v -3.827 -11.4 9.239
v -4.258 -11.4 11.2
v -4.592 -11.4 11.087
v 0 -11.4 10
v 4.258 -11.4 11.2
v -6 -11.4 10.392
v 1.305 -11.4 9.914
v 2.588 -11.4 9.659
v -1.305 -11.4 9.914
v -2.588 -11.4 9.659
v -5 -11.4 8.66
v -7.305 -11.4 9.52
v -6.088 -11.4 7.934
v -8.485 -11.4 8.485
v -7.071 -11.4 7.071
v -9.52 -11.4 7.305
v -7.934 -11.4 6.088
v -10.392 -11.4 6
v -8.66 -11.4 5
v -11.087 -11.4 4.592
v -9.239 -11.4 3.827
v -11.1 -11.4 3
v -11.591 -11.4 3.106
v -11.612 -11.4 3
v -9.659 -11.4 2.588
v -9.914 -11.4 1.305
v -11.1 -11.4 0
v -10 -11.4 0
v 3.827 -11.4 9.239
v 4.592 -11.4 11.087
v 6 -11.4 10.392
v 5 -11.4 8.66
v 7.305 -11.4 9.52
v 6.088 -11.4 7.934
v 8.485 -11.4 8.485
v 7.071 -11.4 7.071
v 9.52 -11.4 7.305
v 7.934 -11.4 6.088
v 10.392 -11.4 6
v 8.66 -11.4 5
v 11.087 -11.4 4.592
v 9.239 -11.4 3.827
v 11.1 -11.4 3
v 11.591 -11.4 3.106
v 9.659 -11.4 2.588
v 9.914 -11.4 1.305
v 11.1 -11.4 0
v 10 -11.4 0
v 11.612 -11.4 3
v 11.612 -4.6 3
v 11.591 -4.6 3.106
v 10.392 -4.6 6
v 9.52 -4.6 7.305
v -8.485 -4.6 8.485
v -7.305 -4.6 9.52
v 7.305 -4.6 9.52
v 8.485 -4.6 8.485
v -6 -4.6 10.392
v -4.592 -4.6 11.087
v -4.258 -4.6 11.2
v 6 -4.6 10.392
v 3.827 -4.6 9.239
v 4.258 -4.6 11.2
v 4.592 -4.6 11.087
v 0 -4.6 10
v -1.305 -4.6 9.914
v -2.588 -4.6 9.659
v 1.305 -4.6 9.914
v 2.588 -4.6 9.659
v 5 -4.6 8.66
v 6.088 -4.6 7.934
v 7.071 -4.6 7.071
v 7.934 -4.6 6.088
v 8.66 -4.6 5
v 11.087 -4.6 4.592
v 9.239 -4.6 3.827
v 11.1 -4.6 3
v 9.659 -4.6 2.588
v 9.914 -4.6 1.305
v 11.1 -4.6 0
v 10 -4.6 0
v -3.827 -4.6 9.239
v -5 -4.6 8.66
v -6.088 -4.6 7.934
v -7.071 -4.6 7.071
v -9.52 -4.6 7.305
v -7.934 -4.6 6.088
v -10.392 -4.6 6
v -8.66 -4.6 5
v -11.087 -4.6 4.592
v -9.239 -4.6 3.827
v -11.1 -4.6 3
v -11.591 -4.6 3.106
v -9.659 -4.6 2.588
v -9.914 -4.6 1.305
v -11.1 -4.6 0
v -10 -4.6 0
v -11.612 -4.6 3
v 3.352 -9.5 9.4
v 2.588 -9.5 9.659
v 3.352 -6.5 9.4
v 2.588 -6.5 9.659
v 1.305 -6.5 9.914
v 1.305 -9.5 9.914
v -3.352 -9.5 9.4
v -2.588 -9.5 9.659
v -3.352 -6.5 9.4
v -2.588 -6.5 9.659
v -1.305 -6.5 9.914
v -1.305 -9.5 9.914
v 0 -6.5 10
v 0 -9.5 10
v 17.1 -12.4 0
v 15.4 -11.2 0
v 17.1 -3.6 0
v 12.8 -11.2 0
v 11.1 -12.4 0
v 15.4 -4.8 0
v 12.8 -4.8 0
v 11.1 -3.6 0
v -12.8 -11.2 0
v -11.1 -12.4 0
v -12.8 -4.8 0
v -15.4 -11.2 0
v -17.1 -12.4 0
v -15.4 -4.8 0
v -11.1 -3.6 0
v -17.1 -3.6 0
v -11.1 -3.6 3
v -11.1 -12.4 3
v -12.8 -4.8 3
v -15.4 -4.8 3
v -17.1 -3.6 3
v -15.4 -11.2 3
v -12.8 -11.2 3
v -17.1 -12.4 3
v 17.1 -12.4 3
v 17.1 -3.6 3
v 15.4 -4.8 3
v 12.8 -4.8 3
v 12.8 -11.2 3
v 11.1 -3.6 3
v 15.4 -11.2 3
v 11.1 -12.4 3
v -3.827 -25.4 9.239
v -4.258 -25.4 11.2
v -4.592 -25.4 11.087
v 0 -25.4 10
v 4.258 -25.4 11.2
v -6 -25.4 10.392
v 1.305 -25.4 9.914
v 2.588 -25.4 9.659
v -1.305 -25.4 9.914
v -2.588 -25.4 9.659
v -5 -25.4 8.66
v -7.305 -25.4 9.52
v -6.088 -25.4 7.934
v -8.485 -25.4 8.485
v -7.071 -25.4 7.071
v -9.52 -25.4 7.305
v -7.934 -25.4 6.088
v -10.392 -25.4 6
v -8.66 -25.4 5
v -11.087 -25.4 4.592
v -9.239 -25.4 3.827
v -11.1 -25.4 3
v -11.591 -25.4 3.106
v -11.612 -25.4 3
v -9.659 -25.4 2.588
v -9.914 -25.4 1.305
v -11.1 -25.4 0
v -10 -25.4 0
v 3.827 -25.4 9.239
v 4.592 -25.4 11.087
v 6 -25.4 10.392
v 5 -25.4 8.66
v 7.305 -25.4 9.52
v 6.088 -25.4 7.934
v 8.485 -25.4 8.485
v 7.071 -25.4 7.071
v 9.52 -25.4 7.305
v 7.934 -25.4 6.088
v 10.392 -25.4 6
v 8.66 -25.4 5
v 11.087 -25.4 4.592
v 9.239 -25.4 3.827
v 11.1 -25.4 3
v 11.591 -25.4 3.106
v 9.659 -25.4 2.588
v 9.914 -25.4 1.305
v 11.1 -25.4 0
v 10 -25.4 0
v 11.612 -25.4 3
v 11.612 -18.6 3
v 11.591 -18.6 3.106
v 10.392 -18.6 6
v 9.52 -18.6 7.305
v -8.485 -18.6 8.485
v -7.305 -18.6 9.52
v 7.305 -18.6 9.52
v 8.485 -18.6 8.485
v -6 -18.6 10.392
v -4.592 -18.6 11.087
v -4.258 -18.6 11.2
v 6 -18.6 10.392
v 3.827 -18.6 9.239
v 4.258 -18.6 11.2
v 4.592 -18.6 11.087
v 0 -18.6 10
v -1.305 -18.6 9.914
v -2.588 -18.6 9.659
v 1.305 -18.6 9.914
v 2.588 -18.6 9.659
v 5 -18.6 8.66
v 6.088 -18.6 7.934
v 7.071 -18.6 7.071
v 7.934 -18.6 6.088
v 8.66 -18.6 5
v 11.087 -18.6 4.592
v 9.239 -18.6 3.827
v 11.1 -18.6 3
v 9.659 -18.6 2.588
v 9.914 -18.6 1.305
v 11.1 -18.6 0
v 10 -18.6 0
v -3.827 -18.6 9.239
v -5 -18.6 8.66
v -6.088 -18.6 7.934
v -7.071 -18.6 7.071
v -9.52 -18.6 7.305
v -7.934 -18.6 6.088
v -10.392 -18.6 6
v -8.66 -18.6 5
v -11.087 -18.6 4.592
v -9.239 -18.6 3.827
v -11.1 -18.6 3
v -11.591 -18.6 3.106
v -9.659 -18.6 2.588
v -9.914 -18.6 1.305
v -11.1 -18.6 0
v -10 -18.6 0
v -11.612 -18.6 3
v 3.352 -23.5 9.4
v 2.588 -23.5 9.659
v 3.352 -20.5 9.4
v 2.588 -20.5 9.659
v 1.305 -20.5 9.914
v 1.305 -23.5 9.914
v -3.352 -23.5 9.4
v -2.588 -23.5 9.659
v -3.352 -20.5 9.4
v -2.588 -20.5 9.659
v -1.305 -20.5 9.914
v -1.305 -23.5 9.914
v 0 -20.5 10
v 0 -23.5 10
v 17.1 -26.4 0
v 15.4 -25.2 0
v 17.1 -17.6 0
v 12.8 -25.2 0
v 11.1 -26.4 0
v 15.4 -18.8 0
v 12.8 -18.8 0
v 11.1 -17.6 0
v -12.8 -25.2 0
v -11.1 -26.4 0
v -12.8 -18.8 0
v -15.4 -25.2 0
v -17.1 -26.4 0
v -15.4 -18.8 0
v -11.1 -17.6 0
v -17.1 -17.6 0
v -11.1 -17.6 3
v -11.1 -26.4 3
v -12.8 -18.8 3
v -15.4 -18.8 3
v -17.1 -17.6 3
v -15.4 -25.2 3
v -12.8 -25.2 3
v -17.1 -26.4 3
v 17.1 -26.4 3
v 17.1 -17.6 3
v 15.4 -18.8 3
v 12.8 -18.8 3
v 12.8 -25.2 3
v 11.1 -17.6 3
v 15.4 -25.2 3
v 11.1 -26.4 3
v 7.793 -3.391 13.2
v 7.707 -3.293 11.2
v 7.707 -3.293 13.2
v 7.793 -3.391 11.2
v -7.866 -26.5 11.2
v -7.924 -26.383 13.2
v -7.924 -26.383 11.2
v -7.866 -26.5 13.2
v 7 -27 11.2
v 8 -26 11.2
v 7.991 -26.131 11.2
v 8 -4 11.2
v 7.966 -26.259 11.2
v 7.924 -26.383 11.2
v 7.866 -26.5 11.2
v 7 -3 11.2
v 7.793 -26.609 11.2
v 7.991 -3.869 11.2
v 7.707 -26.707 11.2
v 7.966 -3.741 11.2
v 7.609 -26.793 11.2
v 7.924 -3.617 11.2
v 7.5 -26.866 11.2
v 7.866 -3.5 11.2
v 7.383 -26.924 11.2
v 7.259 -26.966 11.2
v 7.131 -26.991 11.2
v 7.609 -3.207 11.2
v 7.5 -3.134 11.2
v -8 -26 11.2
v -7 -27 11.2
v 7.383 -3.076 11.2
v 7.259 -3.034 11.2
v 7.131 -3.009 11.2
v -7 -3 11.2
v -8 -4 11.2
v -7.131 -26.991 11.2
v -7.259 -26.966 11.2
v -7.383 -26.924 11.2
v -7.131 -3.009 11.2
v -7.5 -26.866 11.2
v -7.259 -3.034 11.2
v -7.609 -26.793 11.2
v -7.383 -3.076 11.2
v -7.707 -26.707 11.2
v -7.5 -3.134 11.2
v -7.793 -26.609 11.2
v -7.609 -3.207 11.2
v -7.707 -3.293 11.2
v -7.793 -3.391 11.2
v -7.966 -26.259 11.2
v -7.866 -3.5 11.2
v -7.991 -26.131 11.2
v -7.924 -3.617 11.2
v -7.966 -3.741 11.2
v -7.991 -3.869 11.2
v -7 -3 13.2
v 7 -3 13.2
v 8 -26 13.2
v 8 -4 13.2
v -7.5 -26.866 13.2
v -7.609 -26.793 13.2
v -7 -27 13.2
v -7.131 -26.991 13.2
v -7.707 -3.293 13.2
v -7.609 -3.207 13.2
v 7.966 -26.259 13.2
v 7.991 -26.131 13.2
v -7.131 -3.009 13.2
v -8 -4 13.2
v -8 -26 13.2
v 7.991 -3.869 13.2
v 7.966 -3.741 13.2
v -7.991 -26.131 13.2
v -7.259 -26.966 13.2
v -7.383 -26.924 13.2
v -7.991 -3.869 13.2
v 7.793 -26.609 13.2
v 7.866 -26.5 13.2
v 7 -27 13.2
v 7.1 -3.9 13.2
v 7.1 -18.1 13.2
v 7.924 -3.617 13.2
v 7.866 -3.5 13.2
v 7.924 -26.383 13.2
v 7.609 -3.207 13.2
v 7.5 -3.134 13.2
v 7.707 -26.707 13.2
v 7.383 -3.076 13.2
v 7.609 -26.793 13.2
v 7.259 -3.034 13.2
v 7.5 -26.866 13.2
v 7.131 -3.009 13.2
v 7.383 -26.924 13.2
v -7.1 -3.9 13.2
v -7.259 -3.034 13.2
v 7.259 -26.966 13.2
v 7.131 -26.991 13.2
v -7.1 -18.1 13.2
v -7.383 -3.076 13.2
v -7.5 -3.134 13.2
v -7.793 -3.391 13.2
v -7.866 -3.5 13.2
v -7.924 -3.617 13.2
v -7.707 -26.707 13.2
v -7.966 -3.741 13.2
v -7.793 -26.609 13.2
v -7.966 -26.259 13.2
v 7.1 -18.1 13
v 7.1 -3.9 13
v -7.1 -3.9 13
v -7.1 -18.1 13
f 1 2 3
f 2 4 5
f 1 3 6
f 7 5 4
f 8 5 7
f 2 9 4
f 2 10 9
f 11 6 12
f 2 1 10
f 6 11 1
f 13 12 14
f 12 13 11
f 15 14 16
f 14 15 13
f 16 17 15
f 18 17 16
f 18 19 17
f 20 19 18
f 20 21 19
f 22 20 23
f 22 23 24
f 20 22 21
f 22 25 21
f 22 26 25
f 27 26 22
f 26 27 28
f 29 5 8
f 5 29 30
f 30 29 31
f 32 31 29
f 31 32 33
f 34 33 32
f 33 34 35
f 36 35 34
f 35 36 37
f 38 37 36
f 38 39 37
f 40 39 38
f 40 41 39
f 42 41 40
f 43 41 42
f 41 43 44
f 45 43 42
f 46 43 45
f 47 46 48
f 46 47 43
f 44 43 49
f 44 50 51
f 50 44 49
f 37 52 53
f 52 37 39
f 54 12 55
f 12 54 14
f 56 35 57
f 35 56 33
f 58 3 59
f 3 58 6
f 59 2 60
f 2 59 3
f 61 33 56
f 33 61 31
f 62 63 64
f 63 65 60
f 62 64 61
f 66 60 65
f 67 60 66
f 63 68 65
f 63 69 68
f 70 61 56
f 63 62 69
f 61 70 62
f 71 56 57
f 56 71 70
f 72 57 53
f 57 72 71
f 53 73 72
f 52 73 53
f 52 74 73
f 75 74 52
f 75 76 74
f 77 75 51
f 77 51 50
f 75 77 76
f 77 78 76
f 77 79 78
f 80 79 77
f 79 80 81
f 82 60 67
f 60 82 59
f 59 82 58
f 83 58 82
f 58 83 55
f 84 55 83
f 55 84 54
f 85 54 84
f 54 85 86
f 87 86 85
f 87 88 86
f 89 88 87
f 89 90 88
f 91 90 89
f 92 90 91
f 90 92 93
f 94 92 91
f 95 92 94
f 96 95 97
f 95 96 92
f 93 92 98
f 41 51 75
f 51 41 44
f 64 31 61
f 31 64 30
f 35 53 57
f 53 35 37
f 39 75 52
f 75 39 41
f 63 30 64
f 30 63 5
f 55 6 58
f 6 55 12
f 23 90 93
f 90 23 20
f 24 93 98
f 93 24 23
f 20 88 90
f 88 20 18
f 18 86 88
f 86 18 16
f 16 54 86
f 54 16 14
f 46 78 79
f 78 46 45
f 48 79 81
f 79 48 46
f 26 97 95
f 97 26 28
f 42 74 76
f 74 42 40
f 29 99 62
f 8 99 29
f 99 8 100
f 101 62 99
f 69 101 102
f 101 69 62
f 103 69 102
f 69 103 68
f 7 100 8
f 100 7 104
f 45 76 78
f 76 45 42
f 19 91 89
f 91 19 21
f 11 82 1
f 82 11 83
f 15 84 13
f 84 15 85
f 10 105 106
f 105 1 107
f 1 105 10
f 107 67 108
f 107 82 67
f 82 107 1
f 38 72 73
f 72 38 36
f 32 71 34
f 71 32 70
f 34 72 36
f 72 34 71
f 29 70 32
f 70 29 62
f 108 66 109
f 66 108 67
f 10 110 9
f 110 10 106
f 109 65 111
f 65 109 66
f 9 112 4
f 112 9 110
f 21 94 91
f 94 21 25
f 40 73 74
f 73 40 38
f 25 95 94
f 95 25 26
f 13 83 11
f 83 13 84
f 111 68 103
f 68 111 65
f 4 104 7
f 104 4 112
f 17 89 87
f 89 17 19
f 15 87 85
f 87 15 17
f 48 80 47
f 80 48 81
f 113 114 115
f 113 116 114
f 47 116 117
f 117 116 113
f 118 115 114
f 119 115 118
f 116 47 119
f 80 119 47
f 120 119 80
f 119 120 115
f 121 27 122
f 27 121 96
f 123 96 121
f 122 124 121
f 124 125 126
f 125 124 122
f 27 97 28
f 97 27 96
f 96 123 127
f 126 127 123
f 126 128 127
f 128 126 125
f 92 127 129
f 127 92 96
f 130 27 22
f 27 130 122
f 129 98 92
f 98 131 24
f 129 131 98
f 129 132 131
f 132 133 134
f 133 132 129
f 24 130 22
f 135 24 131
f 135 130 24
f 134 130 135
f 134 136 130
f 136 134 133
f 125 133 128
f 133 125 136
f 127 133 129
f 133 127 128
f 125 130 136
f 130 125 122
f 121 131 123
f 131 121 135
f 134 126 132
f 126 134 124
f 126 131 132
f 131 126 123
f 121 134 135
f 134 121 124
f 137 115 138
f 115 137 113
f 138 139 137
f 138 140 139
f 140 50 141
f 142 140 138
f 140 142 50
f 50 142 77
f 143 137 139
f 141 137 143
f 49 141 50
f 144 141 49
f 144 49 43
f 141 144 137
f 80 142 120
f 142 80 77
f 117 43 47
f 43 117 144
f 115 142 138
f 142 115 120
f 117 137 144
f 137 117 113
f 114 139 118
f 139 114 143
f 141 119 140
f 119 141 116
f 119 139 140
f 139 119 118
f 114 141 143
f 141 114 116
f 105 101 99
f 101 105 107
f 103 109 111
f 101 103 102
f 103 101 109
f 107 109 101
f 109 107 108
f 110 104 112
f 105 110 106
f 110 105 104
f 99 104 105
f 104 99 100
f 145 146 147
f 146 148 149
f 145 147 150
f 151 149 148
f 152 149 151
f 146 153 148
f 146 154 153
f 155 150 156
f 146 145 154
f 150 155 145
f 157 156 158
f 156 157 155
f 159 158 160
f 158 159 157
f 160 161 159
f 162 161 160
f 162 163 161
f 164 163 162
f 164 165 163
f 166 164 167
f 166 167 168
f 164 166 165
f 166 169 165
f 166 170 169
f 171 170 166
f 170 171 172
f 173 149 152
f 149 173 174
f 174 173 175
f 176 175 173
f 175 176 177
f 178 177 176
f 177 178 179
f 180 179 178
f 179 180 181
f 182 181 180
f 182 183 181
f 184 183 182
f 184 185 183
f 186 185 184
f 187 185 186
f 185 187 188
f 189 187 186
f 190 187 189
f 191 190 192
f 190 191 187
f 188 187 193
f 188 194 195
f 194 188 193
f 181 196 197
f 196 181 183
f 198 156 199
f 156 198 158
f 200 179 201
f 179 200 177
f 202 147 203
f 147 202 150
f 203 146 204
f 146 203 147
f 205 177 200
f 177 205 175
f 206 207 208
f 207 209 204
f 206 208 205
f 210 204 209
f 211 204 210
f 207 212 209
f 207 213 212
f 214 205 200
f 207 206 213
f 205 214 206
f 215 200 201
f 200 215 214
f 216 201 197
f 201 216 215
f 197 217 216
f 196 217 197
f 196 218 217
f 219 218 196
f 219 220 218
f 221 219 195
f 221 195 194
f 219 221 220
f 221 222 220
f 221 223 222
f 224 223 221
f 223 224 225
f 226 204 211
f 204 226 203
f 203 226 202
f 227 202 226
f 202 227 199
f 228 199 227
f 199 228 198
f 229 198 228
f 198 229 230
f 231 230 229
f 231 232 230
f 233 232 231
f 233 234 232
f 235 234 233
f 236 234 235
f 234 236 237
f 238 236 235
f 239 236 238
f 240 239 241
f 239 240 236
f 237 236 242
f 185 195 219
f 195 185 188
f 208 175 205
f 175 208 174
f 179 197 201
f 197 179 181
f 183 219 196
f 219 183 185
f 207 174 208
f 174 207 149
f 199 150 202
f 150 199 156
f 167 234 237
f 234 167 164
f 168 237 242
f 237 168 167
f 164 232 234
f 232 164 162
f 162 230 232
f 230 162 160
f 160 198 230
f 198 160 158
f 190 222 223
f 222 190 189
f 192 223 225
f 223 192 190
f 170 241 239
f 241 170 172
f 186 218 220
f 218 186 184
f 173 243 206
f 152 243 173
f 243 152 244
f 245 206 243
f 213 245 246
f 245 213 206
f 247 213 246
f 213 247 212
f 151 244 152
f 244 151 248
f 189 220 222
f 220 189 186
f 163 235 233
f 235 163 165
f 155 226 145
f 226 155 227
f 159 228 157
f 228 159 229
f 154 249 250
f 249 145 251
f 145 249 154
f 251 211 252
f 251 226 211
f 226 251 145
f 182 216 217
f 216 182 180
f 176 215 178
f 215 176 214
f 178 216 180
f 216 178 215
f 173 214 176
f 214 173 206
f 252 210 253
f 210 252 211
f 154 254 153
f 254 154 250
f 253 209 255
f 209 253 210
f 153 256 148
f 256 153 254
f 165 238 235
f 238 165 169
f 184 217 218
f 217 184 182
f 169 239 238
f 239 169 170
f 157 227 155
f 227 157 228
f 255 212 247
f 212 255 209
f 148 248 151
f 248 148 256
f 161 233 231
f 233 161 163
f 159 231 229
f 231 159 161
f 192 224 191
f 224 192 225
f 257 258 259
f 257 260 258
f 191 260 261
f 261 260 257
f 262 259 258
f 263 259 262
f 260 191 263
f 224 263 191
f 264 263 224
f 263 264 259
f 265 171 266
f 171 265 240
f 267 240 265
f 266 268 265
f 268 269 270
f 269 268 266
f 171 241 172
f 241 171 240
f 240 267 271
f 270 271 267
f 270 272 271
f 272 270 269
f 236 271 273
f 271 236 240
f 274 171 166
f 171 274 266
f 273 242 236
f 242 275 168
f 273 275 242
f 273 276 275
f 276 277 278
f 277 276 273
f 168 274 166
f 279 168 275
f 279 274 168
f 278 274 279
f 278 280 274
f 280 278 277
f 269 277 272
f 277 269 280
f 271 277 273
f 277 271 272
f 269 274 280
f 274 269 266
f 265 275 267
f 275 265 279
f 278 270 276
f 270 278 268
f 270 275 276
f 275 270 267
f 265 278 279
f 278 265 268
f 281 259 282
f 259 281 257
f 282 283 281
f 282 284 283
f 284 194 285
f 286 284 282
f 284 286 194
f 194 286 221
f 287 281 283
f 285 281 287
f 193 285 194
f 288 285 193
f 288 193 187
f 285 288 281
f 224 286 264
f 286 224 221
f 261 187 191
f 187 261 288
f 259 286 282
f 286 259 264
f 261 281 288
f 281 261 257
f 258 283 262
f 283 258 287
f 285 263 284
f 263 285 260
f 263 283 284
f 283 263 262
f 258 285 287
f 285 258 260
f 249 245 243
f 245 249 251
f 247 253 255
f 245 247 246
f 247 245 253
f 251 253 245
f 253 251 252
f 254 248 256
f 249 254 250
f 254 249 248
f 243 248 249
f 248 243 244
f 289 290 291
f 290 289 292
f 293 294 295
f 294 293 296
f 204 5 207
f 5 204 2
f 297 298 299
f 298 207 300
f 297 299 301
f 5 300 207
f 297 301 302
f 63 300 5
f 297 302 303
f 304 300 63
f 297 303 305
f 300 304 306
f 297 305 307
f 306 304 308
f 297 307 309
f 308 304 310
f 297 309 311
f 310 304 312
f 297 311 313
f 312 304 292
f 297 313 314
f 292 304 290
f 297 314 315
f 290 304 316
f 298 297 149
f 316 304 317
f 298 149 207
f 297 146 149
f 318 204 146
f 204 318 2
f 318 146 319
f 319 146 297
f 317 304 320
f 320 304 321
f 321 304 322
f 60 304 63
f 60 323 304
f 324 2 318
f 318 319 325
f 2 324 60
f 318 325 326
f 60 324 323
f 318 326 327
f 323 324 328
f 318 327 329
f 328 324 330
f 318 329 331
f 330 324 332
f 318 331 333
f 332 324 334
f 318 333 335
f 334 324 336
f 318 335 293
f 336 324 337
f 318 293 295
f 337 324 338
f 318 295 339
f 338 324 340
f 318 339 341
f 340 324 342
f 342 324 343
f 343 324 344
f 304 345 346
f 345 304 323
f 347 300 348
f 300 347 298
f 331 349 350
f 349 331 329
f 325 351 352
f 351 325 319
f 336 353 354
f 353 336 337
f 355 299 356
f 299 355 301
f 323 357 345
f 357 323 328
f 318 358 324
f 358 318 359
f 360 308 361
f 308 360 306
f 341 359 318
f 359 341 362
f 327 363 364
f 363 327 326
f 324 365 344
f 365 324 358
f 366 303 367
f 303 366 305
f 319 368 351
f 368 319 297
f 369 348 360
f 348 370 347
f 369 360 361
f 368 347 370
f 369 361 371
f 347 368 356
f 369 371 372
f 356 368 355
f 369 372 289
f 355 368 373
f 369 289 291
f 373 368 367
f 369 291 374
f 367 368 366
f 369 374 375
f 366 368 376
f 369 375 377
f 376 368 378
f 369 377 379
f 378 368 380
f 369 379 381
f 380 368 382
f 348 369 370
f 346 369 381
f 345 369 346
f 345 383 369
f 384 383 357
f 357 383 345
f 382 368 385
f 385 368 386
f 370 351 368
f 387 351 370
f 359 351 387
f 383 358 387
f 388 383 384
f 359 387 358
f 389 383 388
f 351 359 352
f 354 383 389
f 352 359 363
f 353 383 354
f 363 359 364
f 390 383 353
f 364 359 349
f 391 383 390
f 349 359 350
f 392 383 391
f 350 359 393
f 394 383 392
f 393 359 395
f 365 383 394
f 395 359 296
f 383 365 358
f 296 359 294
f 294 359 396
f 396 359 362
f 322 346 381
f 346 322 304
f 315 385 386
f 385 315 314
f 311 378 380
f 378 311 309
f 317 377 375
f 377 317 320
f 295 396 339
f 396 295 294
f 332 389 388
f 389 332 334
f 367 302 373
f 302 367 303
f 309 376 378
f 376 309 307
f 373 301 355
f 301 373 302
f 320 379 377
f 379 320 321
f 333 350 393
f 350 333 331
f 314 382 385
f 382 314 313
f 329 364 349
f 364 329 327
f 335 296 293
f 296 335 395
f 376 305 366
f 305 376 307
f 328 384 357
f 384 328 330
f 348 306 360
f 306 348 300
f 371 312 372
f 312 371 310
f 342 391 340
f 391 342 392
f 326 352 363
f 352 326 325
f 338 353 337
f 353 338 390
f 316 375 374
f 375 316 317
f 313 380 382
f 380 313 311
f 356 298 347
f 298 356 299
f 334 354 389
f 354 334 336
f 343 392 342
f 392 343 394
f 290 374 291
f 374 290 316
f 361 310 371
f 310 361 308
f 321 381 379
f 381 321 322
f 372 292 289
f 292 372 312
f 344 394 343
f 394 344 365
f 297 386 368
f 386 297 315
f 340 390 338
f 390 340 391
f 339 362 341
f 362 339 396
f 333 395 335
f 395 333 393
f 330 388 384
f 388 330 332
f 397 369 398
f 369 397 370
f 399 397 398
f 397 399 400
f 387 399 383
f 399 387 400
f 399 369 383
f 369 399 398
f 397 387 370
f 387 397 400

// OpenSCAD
// ReachSense six-finger wrap v2. Units: mm. Experimental, physically unverified.
// R: +X lateral, +Y distal (towards fingertip), +Z dorsal.
// A REMOVABLE seating gauge defines Y=0. The wearable deck ends at Y=-3.
// Remove the gauge before testing; no permanent wall blocks the fingertip.
// This defines nominal longitudinal registration, NOT an anatomical 3D point.
$fn = 48;
part = "holder"; // "holder", "gauge" or "strap"
marker_id = 31;
finger_diameter_mm = 20;
marker_edge_mm = 10;
quiet_zone_mm = 2;
frame_mm = 1;
wall_mm = 2;
stop_wall_mm = 1.2;
strap_width_mm = 6;
strap_length_mm = 90;
gauge_side_clearance_mm = 0.3;
r = finger_diameter_mm/2;
tile = marker_edge_mm + 2*quiet_zone_mm;
deck_width = tile + 2*frame_mm;
length = tile + 2*frame_mm + 8;
deck_front_y = -3;
deck_back_y = deck_front_y-length;
deck_bottom = r + wall_mm - 0.8;
deck_top = deck_bottom + 2;
pocket_depth = 0.2;
marker_y = deck_front_y-(frame_mm+quiet_zone_mm+marker_edge_mm/2);
support_y = [deck_front_y-5,deck_back_y+5];
nail_seat_width = min(8,finger_diameter_mm/2);
nail_seat_z = r-0.6;
assert(finger_diameter_mm >= 12 && finger_diameter_mm <= 26,"Choose a 12–26 mm candidate opening");
assert(marker_edge_mm >= 8 && marker_edge_mm <= 16,"Choose an 8–16 mm black edge");
assert(quiet_zone_mm >= 2,"Keep the full white quiet zone");
assert(marker_id >= 0 && marker_id < 100,"DICT_4X4_100 ID required");
module support(y) {
    translate([0,y,0]) intersection() {
        difference() {
            rotate([90,0,0]) cylinder(r=r+wall_mm,h=6.8,center=true);
            rotate([90,0,0]) cylinder(r=r,h=8.8,center=true);
        }
        translate([-r-wall_mm-1,-4.4,0]) cube([2*(r+wall_mm+1),8.8,r+wall_mm+1]);
    }
    // Flat dorsal bearing at each strap region closes the gap below the deck.
    // Contact with a real nail/dorsal surface and rotational retention are unverified.
    translate([-nail_seat_width/2,y-1.5,nail_seat_z])
        cube([nail_seat_width,3,deck_bottom-nail_seat_z+0.2]);
    for(sign=[-1,1]) translate([sign*(r+wall_mm+2.1),y,1.5]) difference() {
        cube([6,8.8,3],center=true);
        cube([2.6,6.4,5],center=true);
    }
}
module deck() {
    // Rounded corners retain a straight central gauge abutment at Y=-3.
    hull() for(x=[-deck_width/2+1,deck_width/2-1])
        for(y=[deck_back_y+1,deck_front_y-1])
            translate([x,y,deck_bottom]) cylinder(r=1,h=2);
}
module holder() {
    difference() {
        union() { for(y=support_y) support(y); deck(); }
        translate([-tile/2-0.1,marker_y-tile/2-0.1,deck_top-pocket_depth])
            cube([tile+0.2,tile+0.2,pocket_depth+1]);
    }
}
module gauge() {
    // Hand-held drop-on gauge, NOT a validated snap fit. Hold its proximal
    // abutment against the deck's front face at Y=-3 while gently seating the finger.
    // Feet sit on the bare side frame; the ArUco pocket remains clear.
    union() {
        translate([-deck_width/2-2.3,deck_front_y,deck_top])
            cube([deck_width+4.6,-deck_front_y+stop_wall_mm,1.2]);
        // Deck contact Y=-3; fingertip contact Y=0. Remove upwards after tightening.
        translate([-deck_width/2+1,deck_front_y,deck_bottom])
            cube([deck_width-2,-deck_front_y,deck_top-deck_bottom+0.5]);
        translate([-deck_width/2,0,-r/2])
            cube([deck_width,stop_wall_mm,deck_top+1.2+r/2]);
        for(sign=[-1,1]) {
            x=sign>0 ? deck_width/2+gauge_side_clearance_mm : -deck_width/2-gauge_side_clearance_mm-2;
            translate([x,-10,deck_bottom]) cube([2,10,deck_top-deck_bottom+1.2]);
            foot_x=sign>0 ? deck_width/2-0.8 : -deck_width/2-2.3;
            translate([foot_x,-10,deck_top]) cube([3.1,10,1.2]);
        }
    }
}
module strap() {
    // TPU-only ladder strip. Ends require a return loop/fastener or hook-and-loop.
    union() {
        translate([-strap_length_mm/2,-strap_width_mm/2,0]) cube([strap_length_mm,strap_width_mm,0.8]);
        for(x=[-strap_length_mm/2+3:4:strap_length_mm/2-3])
            translate([x-0.7,-strap_width_mm/2,0.8]) cube([1.4,strap_width_mm,0.5]);
    }
}
if(part=="strap") strap(); else if(part=="gauge") gauge(); else holder();
echo(reference_plane_y_mm=0,deck_front_y_mm=deck_front_y);
echo(marker_center_R_mm=[0,marker_y,deck_top-pocket_depth+0.15]);
echo(marker_center_to_reference_plane_mm=-marker_y);
